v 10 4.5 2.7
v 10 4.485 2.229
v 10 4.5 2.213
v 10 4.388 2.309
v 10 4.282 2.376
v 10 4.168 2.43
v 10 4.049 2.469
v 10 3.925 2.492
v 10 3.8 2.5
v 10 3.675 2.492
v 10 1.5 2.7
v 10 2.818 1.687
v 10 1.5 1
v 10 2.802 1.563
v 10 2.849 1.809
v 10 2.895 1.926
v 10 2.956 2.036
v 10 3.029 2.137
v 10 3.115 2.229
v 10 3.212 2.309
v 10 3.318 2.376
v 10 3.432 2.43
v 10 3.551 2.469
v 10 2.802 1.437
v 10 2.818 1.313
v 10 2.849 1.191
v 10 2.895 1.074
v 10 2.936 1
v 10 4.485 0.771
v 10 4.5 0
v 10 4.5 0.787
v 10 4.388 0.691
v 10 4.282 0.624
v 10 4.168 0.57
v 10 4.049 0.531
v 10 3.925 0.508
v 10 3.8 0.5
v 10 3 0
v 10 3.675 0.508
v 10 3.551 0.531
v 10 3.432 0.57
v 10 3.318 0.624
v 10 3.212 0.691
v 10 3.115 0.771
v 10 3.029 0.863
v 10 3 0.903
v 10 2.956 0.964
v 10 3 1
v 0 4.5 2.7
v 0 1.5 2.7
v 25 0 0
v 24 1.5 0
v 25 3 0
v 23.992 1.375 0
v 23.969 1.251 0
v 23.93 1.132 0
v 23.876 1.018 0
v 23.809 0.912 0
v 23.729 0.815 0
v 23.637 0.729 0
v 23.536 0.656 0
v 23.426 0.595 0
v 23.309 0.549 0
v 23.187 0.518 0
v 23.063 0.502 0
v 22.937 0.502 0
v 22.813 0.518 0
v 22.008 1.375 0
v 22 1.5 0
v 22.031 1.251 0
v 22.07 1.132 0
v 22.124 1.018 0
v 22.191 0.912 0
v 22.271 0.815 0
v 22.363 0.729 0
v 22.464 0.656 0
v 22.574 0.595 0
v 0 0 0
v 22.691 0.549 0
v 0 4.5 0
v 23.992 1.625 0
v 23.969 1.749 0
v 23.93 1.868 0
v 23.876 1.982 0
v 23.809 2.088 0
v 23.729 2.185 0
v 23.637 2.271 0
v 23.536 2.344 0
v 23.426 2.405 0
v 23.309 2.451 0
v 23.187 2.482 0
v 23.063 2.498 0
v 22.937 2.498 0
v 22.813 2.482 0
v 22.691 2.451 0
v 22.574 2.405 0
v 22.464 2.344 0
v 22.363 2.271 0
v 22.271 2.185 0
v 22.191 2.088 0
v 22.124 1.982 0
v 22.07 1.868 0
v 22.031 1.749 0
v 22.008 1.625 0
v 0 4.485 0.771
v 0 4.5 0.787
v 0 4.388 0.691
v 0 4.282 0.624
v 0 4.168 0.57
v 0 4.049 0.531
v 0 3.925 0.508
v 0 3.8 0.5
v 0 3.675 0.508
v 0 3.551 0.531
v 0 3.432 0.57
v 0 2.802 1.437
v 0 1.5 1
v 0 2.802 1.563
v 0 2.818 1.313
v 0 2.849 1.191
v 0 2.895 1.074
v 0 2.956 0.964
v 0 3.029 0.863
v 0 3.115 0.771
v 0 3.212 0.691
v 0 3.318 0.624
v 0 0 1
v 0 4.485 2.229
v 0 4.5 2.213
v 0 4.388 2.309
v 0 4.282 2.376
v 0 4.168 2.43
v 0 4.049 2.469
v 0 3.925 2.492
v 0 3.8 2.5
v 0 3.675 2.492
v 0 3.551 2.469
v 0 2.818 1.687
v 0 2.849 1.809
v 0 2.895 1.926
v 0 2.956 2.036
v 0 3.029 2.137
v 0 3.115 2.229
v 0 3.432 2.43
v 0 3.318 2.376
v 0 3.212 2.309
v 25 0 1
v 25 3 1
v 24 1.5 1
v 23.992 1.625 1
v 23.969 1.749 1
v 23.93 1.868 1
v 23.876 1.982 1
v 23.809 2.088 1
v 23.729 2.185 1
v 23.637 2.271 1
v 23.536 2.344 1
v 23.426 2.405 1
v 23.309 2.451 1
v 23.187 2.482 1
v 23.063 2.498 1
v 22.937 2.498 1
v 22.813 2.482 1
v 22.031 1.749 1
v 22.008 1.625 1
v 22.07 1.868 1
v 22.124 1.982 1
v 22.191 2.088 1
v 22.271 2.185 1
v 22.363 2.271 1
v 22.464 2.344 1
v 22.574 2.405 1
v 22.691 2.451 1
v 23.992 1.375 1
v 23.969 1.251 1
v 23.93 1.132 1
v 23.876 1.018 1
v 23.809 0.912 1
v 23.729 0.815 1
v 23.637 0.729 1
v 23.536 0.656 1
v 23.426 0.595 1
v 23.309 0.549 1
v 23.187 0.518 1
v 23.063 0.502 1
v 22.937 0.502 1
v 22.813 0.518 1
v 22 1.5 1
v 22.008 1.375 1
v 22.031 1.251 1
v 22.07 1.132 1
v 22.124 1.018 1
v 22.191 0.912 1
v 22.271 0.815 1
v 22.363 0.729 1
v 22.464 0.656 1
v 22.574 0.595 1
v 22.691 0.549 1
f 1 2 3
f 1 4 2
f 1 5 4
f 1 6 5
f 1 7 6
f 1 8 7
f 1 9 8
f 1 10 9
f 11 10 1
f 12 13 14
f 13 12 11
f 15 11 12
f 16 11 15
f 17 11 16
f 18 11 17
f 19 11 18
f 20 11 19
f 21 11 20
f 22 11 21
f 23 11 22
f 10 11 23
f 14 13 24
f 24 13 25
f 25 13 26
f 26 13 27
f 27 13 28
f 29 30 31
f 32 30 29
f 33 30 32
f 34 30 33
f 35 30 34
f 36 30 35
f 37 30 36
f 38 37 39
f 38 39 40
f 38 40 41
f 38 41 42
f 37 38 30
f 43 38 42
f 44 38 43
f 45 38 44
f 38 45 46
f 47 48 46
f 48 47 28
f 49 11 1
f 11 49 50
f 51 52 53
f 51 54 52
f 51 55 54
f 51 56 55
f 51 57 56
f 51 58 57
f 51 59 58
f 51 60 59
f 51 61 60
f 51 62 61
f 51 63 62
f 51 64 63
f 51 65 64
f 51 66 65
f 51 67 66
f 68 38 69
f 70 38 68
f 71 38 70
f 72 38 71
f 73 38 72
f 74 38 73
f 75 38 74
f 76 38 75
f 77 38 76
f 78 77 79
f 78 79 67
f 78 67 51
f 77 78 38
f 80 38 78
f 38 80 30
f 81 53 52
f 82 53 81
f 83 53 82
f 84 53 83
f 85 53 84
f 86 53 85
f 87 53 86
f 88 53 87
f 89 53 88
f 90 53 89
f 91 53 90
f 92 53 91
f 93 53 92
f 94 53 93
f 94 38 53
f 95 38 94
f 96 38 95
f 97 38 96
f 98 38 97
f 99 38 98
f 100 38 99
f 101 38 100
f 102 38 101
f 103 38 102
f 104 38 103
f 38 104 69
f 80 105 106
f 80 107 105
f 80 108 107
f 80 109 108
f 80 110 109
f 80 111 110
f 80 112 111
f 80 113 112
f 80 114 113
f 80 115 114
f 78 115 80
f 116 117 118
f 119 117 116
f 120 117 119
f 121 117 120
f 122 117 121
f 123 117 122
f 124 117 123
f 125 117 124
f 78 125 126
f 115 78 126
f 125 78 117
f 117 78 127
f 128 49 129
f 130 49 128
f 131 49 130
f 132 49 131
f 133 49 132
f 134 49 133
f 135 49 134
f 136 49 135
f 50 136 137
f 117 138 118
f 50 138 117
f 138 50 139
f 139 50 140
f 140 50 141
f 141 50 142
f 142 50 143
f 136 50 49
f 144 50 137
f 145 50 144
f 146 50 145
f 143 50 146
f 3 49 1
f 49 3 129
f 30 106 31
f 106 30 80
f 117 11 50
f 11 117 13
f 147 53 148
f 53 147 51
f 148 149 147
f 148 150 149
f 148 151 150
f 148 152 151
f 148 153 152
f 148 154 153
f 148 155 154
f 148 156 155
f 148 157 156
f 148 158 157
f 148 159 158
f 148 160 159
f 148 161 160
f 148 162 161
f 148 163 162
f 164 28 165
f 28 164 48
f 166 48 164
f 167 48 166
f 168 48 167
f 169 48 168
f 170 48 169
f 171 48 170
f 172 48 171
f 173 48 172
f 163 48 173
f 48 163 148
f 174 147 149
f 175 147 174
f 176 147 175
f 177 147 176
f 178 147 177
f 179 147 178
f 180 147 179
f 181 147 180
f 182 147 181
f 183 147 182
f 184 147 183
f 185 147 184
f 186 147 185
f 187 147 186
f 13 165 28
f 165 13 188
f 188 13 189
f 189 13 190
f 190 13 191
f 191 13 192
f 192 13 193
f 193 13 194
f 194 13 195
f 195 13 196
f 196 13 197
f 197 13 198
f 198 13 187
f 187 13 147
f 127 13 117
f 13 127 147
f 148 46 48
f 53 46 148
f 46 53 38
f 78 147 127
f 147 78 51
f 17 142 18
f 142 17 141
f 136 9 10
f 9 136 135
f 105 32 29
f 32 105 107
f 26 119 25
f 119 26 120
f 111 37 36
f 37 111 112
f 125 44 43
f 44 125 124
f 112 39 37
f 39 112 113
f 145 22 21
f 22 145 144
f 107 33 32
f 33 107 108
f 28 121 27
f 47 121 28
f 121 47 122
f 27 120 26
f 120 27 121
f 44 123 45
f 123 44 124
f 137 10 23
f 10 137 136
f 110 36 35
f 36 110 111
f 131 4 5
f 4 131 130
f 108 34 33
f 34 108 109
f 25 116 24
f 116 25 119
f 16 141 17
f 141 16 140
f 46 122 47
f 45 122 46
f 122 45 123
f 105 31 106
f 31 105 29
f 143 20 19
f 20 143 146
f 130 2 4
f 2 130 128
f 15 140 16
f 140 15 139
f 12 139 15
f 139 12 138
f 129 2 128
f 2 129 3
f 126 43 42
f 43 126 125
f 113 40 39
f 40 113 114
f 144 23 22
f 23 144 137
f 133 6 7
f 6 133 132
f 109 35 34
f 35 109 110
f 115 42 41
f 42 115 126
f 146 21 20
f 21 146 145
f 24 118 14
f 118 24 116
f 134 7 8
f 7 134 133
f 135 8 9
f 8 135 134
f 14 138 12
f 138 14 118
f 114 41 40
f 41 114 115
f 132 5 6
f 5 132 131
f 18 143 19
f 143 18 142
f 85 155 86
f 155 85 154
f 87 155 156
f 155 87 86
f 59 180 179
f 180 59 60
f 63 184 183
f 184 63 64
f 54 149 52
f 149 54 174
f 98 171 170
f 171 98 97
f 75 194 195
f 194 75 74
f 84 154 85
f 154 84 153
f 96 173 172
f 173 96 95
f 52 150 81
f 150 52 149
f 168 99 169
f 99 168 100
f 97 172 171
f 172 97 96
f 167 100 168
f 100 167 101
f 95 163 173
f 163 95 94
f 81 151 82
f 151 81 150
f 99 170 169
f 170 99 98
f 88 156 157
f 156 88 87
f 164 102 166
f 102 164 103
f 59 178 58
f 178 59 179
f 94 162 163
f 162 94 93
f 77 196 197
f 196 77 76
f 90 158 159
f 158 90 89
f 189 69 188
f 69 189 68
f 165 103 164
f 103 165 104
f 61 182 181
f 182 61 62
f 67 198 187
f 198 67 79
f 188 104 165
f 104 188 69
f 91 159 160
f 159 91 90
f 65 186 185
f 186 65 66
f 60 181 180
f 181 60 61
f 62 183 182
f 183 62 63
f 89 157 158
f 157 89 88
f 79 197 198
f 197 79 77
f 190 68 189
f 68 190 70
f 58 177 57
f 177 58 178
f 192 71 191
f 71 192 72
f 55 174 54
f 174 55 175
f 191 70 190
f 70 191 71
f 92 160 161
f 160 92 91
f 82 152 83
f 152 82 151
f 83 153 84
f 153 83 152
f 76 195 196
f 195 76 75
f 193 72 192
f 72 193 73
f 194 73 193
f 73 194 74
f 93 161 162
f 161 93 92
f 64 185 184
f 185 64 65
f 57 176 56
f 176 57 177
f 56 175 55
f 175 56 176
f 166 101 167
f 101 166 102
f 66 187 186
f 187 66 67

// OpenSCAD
$fn=50;
WIRE=2;
FLAT=1;
L1=10;
L2=15;

module retainer1() {
    // straight one
    difference() {
        union() {
            cube([L1,WIRE+1,FLAT+WIRE*.85]);
            cube([L1+L2,WIRE+1,FLAT]);
        }
        #translate([0,WIRE/2+WIRE/4,FLAT+WIRE/2]) rotate([0,90,0]) cylinder(L1,d=WIRE);
        translate([L1+L2-WIRE,WIRE/2+WIRE/4,0]) cylinder(FLAT,d=WIRE);
    }
}

module retainer() {
    // offset, boxy
    difference() {
        union() {
            translate([0,WIRE/2+WIRE/4,0]) cube([L1,WIRE+1,FLAT+WIRE*.85]);
            cube([L1+L2,WIRE+1,FLAT]);
        }
        #translate([0,(WIRE*1.15)+WIRE/2+WIRE/4,FLAT+WIRE/4]) rotate([0,90,0]) cylinder(L1,d=WIRE);
        translate([L1+L2-WIRE,WIRE/2+WIRE/4,0]) cylinder(FLAT,d=WIRE);
    }
}

module clipper(h,d) {
    difference() {
        scale=1.2;
        extra=d*2;
        cube([d*scale+extra,d*scale,h]);
        translate([d*scale/2,d*scale/2,0]) cylinder(h, d=d);
        cube([d*scale/2,d*scale,h]);
    }
}

module retainer_rounded_incomplete() {
    difference() {
        union() {
            translate([0,WIRE/2+WIRE/4,0]) cube([L1,WIRE+1,FLAT+WIRE*.85]);
            cube([L1+L2,WIRE+1,FLAT]);
        }
        #translate([0,(WIRE*1.15)+WIRE/2+WIRE/4,FLAT+WIRE/4]) rotate([0,90,0]) cylinder(L1,d=WIRE);
        translate([L1+L2-WIRE,WIRE/2+WIRE/4,0]) {
            // busted here
            cylinder(FLAT,d=WIRE);
            # translate([0,0,0]) clipper(5,WIRE);
        }
    }
}


retainer();
//clipper(5,2);
